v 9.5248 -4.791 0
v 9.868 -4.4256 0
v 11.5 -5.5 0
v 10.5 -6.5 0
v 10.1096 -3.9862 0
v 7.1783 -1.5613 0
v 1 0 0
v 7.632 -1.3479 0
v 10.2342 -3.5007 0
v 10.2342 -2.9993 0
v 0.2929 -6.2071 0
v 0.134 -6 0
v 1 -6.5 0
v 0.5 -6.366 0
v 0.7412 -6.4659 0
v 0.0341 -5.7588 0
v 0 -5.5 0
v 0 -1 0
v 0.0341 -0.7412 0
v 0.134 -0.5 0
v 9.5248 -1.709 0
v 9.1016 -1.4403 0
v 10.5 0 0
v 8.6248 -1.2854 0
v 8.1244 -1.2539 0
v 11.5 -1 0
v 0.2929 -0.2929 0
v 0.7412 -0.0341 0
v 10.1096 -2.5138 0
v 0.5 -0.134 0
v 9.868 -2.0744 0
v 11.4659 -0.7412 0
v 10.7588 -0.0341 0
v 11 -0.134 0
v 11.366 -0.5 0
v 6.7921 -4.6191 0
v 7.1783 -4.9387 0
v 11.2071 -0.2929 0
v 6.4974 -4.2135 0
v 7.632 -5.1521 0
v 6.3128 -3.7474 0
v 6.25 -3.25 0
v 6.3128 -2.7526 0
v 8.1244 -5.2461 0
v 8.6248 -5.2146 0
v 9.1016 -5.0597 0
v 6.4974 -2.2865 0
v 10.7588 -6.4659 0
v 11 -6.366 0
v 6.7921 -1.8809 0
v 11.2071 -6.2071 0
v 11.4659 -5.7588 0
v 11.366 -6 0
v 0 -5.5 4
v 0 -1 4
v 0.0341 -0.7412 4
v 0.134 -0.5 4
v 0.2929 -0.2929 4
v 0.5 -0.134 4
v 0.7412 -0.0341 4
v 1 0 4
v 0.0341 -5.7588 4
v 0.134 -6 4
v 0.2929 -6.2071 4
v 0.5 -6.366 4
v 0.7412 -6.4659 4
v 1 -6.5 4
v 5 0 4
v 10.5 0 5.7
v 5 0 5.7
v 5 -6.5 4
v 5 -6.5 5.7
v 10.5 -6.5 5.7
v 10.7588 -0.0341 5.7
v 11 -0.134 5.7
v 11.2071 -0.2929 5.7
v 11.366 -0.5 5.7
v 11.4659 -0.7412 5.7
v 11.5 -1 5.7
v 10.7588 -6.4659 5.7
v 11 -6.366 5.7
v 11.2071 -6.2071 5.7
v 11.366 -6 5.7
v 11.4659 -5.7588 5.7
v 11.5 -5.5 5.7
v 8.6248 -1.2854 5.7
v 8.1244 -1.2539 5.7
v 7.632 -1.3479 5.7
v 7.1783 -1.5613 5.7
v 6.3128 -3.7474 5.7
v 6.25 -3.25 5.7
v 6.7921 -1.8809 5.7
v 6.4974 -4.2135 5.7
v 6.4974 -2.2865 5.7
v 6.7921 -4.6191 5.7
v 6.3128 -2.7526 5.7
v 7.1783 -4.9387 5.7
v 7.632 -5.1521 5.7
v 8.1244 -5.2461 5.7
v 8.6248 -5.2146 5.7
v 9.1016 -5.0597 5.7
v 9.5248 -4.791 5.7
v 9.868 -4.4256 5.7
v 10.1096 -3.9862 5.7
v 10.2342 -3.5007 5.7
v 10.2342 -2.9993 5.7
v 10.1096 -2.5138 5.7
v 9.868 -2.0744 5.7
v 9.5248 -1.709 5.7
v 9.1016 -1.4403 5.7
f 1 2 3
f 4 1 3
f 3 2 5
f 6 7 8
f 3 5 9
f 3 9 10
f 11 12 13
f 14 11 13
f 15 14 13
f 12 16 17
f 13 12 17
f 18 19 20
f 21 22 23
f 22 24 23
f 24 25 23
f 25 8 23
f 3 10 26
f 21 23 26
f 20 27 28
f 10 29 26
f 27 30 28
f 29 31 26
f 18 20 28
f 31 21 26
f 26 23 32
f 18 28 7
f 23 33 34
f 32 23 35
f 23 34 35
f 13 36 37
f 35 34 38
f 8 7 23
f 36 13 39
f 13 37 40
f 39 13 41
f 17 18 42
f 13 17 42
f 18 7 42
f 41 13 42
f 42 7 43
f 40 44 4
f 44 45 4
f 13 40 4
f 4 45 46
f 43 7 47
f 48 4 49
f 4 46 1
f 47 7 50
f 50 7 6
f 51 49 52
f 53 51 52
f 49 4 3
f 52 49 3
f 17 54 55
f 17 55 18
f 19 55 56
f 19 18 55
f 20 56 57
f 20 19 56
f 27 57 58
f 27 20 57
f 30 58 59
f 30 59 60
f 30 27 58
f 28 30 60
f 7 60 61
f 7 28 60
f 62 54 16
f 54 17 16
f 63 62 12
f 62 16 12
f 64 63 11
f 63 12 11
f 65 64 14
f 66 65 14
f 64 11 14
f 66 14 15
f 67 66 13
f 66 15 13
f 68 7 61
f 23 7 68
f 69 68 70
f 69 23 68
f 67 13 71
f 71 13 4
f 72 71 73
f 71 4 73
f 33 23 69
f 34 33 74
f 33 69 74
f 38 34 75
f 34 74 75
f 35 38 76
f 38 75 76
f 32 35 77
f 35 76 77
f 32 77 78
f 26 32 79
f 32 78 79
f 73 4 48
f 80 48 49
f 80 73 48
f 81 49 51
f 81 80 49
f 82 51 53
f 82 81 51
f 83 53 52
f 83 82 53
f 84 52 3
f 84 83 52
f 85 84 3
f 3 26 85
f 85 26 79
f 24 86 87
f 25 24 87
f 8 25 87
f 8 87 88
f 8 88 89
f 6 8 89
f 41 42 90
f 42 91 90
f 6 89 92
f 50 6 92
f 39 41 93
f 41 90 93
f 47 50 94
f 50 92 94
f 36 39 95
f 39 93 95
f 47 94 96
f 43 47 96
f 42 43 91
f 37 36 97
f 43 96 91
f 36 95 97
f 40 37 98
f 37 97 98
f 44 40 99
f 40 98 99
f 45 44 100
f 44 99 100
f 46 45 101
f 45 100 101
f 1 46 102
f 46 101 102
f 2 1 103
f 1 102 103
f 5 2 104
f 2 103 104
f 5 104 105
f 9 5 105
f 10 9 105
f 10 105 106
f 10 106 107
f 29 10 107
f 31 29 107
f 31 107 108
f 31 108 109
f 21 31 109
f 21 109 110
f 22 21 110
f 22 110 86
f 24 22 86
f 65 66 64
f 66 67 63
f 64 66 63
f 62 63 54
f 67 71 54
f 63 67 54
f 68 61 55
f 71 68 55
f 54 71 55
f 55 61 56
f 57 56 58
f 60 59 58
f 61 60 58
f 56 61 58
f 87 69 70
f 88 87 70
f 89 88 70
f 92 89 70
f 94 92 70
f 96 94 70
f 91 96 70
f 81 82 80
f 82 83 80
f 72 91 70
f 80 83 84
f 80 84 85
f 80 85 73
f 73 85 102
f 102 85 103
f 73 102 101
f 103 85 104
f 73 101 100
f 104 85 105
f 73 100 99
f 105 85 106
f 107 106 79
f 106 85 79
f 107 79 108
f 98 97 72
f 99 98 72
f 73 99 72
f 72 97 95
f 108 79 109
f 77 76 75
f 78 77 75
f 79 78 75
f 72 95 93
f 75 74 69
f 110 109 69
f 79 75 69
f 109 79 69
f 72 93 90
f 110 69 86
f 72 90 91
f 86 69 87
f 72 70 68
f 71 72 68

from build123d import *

# Parameters (mm, degrees)
PAD_DEPTH    = 6.5
SKETCH001_R  = 2
POCKET_DEPTH = 5.701
FILLET_R     = 1


with BuildPart() as part:
    # Sketch → Pad (new body)
    with BuildSketch(Plane.XZ):
        Polygon((0, 0), (11.5, 0), (11.5, 5.7), (5, 5.7), (5, 4), (0, 4), align=None)
    extrude(amount=PAD_DEPTH)

    # Sketch001 → Pocket (cut, through all)
    with BuildSketch(Plane(origin=(0, 0, 5.7), x_dir=(-1, 0, 0), z_dir=(0, 0, 1))):
        with Locations((-8.25, 3.25)):
            Circle(SKETCH001_R)
    extrude(amount=-POCKET_DEPTH, mode=Mode.SUBTRACT)

    # Fillet
    fillet_edges = [part.edges().sort_by_distance(p)[0] for p in [
        (0, 0, 2),
        (0, -6.5, 2),
        (11.5, 0, 2.85),
        (11.5, -6.5, 2.85),
    ]]
    fillet(fillet_edges, radius=FILLET_R)


solid = part.part
